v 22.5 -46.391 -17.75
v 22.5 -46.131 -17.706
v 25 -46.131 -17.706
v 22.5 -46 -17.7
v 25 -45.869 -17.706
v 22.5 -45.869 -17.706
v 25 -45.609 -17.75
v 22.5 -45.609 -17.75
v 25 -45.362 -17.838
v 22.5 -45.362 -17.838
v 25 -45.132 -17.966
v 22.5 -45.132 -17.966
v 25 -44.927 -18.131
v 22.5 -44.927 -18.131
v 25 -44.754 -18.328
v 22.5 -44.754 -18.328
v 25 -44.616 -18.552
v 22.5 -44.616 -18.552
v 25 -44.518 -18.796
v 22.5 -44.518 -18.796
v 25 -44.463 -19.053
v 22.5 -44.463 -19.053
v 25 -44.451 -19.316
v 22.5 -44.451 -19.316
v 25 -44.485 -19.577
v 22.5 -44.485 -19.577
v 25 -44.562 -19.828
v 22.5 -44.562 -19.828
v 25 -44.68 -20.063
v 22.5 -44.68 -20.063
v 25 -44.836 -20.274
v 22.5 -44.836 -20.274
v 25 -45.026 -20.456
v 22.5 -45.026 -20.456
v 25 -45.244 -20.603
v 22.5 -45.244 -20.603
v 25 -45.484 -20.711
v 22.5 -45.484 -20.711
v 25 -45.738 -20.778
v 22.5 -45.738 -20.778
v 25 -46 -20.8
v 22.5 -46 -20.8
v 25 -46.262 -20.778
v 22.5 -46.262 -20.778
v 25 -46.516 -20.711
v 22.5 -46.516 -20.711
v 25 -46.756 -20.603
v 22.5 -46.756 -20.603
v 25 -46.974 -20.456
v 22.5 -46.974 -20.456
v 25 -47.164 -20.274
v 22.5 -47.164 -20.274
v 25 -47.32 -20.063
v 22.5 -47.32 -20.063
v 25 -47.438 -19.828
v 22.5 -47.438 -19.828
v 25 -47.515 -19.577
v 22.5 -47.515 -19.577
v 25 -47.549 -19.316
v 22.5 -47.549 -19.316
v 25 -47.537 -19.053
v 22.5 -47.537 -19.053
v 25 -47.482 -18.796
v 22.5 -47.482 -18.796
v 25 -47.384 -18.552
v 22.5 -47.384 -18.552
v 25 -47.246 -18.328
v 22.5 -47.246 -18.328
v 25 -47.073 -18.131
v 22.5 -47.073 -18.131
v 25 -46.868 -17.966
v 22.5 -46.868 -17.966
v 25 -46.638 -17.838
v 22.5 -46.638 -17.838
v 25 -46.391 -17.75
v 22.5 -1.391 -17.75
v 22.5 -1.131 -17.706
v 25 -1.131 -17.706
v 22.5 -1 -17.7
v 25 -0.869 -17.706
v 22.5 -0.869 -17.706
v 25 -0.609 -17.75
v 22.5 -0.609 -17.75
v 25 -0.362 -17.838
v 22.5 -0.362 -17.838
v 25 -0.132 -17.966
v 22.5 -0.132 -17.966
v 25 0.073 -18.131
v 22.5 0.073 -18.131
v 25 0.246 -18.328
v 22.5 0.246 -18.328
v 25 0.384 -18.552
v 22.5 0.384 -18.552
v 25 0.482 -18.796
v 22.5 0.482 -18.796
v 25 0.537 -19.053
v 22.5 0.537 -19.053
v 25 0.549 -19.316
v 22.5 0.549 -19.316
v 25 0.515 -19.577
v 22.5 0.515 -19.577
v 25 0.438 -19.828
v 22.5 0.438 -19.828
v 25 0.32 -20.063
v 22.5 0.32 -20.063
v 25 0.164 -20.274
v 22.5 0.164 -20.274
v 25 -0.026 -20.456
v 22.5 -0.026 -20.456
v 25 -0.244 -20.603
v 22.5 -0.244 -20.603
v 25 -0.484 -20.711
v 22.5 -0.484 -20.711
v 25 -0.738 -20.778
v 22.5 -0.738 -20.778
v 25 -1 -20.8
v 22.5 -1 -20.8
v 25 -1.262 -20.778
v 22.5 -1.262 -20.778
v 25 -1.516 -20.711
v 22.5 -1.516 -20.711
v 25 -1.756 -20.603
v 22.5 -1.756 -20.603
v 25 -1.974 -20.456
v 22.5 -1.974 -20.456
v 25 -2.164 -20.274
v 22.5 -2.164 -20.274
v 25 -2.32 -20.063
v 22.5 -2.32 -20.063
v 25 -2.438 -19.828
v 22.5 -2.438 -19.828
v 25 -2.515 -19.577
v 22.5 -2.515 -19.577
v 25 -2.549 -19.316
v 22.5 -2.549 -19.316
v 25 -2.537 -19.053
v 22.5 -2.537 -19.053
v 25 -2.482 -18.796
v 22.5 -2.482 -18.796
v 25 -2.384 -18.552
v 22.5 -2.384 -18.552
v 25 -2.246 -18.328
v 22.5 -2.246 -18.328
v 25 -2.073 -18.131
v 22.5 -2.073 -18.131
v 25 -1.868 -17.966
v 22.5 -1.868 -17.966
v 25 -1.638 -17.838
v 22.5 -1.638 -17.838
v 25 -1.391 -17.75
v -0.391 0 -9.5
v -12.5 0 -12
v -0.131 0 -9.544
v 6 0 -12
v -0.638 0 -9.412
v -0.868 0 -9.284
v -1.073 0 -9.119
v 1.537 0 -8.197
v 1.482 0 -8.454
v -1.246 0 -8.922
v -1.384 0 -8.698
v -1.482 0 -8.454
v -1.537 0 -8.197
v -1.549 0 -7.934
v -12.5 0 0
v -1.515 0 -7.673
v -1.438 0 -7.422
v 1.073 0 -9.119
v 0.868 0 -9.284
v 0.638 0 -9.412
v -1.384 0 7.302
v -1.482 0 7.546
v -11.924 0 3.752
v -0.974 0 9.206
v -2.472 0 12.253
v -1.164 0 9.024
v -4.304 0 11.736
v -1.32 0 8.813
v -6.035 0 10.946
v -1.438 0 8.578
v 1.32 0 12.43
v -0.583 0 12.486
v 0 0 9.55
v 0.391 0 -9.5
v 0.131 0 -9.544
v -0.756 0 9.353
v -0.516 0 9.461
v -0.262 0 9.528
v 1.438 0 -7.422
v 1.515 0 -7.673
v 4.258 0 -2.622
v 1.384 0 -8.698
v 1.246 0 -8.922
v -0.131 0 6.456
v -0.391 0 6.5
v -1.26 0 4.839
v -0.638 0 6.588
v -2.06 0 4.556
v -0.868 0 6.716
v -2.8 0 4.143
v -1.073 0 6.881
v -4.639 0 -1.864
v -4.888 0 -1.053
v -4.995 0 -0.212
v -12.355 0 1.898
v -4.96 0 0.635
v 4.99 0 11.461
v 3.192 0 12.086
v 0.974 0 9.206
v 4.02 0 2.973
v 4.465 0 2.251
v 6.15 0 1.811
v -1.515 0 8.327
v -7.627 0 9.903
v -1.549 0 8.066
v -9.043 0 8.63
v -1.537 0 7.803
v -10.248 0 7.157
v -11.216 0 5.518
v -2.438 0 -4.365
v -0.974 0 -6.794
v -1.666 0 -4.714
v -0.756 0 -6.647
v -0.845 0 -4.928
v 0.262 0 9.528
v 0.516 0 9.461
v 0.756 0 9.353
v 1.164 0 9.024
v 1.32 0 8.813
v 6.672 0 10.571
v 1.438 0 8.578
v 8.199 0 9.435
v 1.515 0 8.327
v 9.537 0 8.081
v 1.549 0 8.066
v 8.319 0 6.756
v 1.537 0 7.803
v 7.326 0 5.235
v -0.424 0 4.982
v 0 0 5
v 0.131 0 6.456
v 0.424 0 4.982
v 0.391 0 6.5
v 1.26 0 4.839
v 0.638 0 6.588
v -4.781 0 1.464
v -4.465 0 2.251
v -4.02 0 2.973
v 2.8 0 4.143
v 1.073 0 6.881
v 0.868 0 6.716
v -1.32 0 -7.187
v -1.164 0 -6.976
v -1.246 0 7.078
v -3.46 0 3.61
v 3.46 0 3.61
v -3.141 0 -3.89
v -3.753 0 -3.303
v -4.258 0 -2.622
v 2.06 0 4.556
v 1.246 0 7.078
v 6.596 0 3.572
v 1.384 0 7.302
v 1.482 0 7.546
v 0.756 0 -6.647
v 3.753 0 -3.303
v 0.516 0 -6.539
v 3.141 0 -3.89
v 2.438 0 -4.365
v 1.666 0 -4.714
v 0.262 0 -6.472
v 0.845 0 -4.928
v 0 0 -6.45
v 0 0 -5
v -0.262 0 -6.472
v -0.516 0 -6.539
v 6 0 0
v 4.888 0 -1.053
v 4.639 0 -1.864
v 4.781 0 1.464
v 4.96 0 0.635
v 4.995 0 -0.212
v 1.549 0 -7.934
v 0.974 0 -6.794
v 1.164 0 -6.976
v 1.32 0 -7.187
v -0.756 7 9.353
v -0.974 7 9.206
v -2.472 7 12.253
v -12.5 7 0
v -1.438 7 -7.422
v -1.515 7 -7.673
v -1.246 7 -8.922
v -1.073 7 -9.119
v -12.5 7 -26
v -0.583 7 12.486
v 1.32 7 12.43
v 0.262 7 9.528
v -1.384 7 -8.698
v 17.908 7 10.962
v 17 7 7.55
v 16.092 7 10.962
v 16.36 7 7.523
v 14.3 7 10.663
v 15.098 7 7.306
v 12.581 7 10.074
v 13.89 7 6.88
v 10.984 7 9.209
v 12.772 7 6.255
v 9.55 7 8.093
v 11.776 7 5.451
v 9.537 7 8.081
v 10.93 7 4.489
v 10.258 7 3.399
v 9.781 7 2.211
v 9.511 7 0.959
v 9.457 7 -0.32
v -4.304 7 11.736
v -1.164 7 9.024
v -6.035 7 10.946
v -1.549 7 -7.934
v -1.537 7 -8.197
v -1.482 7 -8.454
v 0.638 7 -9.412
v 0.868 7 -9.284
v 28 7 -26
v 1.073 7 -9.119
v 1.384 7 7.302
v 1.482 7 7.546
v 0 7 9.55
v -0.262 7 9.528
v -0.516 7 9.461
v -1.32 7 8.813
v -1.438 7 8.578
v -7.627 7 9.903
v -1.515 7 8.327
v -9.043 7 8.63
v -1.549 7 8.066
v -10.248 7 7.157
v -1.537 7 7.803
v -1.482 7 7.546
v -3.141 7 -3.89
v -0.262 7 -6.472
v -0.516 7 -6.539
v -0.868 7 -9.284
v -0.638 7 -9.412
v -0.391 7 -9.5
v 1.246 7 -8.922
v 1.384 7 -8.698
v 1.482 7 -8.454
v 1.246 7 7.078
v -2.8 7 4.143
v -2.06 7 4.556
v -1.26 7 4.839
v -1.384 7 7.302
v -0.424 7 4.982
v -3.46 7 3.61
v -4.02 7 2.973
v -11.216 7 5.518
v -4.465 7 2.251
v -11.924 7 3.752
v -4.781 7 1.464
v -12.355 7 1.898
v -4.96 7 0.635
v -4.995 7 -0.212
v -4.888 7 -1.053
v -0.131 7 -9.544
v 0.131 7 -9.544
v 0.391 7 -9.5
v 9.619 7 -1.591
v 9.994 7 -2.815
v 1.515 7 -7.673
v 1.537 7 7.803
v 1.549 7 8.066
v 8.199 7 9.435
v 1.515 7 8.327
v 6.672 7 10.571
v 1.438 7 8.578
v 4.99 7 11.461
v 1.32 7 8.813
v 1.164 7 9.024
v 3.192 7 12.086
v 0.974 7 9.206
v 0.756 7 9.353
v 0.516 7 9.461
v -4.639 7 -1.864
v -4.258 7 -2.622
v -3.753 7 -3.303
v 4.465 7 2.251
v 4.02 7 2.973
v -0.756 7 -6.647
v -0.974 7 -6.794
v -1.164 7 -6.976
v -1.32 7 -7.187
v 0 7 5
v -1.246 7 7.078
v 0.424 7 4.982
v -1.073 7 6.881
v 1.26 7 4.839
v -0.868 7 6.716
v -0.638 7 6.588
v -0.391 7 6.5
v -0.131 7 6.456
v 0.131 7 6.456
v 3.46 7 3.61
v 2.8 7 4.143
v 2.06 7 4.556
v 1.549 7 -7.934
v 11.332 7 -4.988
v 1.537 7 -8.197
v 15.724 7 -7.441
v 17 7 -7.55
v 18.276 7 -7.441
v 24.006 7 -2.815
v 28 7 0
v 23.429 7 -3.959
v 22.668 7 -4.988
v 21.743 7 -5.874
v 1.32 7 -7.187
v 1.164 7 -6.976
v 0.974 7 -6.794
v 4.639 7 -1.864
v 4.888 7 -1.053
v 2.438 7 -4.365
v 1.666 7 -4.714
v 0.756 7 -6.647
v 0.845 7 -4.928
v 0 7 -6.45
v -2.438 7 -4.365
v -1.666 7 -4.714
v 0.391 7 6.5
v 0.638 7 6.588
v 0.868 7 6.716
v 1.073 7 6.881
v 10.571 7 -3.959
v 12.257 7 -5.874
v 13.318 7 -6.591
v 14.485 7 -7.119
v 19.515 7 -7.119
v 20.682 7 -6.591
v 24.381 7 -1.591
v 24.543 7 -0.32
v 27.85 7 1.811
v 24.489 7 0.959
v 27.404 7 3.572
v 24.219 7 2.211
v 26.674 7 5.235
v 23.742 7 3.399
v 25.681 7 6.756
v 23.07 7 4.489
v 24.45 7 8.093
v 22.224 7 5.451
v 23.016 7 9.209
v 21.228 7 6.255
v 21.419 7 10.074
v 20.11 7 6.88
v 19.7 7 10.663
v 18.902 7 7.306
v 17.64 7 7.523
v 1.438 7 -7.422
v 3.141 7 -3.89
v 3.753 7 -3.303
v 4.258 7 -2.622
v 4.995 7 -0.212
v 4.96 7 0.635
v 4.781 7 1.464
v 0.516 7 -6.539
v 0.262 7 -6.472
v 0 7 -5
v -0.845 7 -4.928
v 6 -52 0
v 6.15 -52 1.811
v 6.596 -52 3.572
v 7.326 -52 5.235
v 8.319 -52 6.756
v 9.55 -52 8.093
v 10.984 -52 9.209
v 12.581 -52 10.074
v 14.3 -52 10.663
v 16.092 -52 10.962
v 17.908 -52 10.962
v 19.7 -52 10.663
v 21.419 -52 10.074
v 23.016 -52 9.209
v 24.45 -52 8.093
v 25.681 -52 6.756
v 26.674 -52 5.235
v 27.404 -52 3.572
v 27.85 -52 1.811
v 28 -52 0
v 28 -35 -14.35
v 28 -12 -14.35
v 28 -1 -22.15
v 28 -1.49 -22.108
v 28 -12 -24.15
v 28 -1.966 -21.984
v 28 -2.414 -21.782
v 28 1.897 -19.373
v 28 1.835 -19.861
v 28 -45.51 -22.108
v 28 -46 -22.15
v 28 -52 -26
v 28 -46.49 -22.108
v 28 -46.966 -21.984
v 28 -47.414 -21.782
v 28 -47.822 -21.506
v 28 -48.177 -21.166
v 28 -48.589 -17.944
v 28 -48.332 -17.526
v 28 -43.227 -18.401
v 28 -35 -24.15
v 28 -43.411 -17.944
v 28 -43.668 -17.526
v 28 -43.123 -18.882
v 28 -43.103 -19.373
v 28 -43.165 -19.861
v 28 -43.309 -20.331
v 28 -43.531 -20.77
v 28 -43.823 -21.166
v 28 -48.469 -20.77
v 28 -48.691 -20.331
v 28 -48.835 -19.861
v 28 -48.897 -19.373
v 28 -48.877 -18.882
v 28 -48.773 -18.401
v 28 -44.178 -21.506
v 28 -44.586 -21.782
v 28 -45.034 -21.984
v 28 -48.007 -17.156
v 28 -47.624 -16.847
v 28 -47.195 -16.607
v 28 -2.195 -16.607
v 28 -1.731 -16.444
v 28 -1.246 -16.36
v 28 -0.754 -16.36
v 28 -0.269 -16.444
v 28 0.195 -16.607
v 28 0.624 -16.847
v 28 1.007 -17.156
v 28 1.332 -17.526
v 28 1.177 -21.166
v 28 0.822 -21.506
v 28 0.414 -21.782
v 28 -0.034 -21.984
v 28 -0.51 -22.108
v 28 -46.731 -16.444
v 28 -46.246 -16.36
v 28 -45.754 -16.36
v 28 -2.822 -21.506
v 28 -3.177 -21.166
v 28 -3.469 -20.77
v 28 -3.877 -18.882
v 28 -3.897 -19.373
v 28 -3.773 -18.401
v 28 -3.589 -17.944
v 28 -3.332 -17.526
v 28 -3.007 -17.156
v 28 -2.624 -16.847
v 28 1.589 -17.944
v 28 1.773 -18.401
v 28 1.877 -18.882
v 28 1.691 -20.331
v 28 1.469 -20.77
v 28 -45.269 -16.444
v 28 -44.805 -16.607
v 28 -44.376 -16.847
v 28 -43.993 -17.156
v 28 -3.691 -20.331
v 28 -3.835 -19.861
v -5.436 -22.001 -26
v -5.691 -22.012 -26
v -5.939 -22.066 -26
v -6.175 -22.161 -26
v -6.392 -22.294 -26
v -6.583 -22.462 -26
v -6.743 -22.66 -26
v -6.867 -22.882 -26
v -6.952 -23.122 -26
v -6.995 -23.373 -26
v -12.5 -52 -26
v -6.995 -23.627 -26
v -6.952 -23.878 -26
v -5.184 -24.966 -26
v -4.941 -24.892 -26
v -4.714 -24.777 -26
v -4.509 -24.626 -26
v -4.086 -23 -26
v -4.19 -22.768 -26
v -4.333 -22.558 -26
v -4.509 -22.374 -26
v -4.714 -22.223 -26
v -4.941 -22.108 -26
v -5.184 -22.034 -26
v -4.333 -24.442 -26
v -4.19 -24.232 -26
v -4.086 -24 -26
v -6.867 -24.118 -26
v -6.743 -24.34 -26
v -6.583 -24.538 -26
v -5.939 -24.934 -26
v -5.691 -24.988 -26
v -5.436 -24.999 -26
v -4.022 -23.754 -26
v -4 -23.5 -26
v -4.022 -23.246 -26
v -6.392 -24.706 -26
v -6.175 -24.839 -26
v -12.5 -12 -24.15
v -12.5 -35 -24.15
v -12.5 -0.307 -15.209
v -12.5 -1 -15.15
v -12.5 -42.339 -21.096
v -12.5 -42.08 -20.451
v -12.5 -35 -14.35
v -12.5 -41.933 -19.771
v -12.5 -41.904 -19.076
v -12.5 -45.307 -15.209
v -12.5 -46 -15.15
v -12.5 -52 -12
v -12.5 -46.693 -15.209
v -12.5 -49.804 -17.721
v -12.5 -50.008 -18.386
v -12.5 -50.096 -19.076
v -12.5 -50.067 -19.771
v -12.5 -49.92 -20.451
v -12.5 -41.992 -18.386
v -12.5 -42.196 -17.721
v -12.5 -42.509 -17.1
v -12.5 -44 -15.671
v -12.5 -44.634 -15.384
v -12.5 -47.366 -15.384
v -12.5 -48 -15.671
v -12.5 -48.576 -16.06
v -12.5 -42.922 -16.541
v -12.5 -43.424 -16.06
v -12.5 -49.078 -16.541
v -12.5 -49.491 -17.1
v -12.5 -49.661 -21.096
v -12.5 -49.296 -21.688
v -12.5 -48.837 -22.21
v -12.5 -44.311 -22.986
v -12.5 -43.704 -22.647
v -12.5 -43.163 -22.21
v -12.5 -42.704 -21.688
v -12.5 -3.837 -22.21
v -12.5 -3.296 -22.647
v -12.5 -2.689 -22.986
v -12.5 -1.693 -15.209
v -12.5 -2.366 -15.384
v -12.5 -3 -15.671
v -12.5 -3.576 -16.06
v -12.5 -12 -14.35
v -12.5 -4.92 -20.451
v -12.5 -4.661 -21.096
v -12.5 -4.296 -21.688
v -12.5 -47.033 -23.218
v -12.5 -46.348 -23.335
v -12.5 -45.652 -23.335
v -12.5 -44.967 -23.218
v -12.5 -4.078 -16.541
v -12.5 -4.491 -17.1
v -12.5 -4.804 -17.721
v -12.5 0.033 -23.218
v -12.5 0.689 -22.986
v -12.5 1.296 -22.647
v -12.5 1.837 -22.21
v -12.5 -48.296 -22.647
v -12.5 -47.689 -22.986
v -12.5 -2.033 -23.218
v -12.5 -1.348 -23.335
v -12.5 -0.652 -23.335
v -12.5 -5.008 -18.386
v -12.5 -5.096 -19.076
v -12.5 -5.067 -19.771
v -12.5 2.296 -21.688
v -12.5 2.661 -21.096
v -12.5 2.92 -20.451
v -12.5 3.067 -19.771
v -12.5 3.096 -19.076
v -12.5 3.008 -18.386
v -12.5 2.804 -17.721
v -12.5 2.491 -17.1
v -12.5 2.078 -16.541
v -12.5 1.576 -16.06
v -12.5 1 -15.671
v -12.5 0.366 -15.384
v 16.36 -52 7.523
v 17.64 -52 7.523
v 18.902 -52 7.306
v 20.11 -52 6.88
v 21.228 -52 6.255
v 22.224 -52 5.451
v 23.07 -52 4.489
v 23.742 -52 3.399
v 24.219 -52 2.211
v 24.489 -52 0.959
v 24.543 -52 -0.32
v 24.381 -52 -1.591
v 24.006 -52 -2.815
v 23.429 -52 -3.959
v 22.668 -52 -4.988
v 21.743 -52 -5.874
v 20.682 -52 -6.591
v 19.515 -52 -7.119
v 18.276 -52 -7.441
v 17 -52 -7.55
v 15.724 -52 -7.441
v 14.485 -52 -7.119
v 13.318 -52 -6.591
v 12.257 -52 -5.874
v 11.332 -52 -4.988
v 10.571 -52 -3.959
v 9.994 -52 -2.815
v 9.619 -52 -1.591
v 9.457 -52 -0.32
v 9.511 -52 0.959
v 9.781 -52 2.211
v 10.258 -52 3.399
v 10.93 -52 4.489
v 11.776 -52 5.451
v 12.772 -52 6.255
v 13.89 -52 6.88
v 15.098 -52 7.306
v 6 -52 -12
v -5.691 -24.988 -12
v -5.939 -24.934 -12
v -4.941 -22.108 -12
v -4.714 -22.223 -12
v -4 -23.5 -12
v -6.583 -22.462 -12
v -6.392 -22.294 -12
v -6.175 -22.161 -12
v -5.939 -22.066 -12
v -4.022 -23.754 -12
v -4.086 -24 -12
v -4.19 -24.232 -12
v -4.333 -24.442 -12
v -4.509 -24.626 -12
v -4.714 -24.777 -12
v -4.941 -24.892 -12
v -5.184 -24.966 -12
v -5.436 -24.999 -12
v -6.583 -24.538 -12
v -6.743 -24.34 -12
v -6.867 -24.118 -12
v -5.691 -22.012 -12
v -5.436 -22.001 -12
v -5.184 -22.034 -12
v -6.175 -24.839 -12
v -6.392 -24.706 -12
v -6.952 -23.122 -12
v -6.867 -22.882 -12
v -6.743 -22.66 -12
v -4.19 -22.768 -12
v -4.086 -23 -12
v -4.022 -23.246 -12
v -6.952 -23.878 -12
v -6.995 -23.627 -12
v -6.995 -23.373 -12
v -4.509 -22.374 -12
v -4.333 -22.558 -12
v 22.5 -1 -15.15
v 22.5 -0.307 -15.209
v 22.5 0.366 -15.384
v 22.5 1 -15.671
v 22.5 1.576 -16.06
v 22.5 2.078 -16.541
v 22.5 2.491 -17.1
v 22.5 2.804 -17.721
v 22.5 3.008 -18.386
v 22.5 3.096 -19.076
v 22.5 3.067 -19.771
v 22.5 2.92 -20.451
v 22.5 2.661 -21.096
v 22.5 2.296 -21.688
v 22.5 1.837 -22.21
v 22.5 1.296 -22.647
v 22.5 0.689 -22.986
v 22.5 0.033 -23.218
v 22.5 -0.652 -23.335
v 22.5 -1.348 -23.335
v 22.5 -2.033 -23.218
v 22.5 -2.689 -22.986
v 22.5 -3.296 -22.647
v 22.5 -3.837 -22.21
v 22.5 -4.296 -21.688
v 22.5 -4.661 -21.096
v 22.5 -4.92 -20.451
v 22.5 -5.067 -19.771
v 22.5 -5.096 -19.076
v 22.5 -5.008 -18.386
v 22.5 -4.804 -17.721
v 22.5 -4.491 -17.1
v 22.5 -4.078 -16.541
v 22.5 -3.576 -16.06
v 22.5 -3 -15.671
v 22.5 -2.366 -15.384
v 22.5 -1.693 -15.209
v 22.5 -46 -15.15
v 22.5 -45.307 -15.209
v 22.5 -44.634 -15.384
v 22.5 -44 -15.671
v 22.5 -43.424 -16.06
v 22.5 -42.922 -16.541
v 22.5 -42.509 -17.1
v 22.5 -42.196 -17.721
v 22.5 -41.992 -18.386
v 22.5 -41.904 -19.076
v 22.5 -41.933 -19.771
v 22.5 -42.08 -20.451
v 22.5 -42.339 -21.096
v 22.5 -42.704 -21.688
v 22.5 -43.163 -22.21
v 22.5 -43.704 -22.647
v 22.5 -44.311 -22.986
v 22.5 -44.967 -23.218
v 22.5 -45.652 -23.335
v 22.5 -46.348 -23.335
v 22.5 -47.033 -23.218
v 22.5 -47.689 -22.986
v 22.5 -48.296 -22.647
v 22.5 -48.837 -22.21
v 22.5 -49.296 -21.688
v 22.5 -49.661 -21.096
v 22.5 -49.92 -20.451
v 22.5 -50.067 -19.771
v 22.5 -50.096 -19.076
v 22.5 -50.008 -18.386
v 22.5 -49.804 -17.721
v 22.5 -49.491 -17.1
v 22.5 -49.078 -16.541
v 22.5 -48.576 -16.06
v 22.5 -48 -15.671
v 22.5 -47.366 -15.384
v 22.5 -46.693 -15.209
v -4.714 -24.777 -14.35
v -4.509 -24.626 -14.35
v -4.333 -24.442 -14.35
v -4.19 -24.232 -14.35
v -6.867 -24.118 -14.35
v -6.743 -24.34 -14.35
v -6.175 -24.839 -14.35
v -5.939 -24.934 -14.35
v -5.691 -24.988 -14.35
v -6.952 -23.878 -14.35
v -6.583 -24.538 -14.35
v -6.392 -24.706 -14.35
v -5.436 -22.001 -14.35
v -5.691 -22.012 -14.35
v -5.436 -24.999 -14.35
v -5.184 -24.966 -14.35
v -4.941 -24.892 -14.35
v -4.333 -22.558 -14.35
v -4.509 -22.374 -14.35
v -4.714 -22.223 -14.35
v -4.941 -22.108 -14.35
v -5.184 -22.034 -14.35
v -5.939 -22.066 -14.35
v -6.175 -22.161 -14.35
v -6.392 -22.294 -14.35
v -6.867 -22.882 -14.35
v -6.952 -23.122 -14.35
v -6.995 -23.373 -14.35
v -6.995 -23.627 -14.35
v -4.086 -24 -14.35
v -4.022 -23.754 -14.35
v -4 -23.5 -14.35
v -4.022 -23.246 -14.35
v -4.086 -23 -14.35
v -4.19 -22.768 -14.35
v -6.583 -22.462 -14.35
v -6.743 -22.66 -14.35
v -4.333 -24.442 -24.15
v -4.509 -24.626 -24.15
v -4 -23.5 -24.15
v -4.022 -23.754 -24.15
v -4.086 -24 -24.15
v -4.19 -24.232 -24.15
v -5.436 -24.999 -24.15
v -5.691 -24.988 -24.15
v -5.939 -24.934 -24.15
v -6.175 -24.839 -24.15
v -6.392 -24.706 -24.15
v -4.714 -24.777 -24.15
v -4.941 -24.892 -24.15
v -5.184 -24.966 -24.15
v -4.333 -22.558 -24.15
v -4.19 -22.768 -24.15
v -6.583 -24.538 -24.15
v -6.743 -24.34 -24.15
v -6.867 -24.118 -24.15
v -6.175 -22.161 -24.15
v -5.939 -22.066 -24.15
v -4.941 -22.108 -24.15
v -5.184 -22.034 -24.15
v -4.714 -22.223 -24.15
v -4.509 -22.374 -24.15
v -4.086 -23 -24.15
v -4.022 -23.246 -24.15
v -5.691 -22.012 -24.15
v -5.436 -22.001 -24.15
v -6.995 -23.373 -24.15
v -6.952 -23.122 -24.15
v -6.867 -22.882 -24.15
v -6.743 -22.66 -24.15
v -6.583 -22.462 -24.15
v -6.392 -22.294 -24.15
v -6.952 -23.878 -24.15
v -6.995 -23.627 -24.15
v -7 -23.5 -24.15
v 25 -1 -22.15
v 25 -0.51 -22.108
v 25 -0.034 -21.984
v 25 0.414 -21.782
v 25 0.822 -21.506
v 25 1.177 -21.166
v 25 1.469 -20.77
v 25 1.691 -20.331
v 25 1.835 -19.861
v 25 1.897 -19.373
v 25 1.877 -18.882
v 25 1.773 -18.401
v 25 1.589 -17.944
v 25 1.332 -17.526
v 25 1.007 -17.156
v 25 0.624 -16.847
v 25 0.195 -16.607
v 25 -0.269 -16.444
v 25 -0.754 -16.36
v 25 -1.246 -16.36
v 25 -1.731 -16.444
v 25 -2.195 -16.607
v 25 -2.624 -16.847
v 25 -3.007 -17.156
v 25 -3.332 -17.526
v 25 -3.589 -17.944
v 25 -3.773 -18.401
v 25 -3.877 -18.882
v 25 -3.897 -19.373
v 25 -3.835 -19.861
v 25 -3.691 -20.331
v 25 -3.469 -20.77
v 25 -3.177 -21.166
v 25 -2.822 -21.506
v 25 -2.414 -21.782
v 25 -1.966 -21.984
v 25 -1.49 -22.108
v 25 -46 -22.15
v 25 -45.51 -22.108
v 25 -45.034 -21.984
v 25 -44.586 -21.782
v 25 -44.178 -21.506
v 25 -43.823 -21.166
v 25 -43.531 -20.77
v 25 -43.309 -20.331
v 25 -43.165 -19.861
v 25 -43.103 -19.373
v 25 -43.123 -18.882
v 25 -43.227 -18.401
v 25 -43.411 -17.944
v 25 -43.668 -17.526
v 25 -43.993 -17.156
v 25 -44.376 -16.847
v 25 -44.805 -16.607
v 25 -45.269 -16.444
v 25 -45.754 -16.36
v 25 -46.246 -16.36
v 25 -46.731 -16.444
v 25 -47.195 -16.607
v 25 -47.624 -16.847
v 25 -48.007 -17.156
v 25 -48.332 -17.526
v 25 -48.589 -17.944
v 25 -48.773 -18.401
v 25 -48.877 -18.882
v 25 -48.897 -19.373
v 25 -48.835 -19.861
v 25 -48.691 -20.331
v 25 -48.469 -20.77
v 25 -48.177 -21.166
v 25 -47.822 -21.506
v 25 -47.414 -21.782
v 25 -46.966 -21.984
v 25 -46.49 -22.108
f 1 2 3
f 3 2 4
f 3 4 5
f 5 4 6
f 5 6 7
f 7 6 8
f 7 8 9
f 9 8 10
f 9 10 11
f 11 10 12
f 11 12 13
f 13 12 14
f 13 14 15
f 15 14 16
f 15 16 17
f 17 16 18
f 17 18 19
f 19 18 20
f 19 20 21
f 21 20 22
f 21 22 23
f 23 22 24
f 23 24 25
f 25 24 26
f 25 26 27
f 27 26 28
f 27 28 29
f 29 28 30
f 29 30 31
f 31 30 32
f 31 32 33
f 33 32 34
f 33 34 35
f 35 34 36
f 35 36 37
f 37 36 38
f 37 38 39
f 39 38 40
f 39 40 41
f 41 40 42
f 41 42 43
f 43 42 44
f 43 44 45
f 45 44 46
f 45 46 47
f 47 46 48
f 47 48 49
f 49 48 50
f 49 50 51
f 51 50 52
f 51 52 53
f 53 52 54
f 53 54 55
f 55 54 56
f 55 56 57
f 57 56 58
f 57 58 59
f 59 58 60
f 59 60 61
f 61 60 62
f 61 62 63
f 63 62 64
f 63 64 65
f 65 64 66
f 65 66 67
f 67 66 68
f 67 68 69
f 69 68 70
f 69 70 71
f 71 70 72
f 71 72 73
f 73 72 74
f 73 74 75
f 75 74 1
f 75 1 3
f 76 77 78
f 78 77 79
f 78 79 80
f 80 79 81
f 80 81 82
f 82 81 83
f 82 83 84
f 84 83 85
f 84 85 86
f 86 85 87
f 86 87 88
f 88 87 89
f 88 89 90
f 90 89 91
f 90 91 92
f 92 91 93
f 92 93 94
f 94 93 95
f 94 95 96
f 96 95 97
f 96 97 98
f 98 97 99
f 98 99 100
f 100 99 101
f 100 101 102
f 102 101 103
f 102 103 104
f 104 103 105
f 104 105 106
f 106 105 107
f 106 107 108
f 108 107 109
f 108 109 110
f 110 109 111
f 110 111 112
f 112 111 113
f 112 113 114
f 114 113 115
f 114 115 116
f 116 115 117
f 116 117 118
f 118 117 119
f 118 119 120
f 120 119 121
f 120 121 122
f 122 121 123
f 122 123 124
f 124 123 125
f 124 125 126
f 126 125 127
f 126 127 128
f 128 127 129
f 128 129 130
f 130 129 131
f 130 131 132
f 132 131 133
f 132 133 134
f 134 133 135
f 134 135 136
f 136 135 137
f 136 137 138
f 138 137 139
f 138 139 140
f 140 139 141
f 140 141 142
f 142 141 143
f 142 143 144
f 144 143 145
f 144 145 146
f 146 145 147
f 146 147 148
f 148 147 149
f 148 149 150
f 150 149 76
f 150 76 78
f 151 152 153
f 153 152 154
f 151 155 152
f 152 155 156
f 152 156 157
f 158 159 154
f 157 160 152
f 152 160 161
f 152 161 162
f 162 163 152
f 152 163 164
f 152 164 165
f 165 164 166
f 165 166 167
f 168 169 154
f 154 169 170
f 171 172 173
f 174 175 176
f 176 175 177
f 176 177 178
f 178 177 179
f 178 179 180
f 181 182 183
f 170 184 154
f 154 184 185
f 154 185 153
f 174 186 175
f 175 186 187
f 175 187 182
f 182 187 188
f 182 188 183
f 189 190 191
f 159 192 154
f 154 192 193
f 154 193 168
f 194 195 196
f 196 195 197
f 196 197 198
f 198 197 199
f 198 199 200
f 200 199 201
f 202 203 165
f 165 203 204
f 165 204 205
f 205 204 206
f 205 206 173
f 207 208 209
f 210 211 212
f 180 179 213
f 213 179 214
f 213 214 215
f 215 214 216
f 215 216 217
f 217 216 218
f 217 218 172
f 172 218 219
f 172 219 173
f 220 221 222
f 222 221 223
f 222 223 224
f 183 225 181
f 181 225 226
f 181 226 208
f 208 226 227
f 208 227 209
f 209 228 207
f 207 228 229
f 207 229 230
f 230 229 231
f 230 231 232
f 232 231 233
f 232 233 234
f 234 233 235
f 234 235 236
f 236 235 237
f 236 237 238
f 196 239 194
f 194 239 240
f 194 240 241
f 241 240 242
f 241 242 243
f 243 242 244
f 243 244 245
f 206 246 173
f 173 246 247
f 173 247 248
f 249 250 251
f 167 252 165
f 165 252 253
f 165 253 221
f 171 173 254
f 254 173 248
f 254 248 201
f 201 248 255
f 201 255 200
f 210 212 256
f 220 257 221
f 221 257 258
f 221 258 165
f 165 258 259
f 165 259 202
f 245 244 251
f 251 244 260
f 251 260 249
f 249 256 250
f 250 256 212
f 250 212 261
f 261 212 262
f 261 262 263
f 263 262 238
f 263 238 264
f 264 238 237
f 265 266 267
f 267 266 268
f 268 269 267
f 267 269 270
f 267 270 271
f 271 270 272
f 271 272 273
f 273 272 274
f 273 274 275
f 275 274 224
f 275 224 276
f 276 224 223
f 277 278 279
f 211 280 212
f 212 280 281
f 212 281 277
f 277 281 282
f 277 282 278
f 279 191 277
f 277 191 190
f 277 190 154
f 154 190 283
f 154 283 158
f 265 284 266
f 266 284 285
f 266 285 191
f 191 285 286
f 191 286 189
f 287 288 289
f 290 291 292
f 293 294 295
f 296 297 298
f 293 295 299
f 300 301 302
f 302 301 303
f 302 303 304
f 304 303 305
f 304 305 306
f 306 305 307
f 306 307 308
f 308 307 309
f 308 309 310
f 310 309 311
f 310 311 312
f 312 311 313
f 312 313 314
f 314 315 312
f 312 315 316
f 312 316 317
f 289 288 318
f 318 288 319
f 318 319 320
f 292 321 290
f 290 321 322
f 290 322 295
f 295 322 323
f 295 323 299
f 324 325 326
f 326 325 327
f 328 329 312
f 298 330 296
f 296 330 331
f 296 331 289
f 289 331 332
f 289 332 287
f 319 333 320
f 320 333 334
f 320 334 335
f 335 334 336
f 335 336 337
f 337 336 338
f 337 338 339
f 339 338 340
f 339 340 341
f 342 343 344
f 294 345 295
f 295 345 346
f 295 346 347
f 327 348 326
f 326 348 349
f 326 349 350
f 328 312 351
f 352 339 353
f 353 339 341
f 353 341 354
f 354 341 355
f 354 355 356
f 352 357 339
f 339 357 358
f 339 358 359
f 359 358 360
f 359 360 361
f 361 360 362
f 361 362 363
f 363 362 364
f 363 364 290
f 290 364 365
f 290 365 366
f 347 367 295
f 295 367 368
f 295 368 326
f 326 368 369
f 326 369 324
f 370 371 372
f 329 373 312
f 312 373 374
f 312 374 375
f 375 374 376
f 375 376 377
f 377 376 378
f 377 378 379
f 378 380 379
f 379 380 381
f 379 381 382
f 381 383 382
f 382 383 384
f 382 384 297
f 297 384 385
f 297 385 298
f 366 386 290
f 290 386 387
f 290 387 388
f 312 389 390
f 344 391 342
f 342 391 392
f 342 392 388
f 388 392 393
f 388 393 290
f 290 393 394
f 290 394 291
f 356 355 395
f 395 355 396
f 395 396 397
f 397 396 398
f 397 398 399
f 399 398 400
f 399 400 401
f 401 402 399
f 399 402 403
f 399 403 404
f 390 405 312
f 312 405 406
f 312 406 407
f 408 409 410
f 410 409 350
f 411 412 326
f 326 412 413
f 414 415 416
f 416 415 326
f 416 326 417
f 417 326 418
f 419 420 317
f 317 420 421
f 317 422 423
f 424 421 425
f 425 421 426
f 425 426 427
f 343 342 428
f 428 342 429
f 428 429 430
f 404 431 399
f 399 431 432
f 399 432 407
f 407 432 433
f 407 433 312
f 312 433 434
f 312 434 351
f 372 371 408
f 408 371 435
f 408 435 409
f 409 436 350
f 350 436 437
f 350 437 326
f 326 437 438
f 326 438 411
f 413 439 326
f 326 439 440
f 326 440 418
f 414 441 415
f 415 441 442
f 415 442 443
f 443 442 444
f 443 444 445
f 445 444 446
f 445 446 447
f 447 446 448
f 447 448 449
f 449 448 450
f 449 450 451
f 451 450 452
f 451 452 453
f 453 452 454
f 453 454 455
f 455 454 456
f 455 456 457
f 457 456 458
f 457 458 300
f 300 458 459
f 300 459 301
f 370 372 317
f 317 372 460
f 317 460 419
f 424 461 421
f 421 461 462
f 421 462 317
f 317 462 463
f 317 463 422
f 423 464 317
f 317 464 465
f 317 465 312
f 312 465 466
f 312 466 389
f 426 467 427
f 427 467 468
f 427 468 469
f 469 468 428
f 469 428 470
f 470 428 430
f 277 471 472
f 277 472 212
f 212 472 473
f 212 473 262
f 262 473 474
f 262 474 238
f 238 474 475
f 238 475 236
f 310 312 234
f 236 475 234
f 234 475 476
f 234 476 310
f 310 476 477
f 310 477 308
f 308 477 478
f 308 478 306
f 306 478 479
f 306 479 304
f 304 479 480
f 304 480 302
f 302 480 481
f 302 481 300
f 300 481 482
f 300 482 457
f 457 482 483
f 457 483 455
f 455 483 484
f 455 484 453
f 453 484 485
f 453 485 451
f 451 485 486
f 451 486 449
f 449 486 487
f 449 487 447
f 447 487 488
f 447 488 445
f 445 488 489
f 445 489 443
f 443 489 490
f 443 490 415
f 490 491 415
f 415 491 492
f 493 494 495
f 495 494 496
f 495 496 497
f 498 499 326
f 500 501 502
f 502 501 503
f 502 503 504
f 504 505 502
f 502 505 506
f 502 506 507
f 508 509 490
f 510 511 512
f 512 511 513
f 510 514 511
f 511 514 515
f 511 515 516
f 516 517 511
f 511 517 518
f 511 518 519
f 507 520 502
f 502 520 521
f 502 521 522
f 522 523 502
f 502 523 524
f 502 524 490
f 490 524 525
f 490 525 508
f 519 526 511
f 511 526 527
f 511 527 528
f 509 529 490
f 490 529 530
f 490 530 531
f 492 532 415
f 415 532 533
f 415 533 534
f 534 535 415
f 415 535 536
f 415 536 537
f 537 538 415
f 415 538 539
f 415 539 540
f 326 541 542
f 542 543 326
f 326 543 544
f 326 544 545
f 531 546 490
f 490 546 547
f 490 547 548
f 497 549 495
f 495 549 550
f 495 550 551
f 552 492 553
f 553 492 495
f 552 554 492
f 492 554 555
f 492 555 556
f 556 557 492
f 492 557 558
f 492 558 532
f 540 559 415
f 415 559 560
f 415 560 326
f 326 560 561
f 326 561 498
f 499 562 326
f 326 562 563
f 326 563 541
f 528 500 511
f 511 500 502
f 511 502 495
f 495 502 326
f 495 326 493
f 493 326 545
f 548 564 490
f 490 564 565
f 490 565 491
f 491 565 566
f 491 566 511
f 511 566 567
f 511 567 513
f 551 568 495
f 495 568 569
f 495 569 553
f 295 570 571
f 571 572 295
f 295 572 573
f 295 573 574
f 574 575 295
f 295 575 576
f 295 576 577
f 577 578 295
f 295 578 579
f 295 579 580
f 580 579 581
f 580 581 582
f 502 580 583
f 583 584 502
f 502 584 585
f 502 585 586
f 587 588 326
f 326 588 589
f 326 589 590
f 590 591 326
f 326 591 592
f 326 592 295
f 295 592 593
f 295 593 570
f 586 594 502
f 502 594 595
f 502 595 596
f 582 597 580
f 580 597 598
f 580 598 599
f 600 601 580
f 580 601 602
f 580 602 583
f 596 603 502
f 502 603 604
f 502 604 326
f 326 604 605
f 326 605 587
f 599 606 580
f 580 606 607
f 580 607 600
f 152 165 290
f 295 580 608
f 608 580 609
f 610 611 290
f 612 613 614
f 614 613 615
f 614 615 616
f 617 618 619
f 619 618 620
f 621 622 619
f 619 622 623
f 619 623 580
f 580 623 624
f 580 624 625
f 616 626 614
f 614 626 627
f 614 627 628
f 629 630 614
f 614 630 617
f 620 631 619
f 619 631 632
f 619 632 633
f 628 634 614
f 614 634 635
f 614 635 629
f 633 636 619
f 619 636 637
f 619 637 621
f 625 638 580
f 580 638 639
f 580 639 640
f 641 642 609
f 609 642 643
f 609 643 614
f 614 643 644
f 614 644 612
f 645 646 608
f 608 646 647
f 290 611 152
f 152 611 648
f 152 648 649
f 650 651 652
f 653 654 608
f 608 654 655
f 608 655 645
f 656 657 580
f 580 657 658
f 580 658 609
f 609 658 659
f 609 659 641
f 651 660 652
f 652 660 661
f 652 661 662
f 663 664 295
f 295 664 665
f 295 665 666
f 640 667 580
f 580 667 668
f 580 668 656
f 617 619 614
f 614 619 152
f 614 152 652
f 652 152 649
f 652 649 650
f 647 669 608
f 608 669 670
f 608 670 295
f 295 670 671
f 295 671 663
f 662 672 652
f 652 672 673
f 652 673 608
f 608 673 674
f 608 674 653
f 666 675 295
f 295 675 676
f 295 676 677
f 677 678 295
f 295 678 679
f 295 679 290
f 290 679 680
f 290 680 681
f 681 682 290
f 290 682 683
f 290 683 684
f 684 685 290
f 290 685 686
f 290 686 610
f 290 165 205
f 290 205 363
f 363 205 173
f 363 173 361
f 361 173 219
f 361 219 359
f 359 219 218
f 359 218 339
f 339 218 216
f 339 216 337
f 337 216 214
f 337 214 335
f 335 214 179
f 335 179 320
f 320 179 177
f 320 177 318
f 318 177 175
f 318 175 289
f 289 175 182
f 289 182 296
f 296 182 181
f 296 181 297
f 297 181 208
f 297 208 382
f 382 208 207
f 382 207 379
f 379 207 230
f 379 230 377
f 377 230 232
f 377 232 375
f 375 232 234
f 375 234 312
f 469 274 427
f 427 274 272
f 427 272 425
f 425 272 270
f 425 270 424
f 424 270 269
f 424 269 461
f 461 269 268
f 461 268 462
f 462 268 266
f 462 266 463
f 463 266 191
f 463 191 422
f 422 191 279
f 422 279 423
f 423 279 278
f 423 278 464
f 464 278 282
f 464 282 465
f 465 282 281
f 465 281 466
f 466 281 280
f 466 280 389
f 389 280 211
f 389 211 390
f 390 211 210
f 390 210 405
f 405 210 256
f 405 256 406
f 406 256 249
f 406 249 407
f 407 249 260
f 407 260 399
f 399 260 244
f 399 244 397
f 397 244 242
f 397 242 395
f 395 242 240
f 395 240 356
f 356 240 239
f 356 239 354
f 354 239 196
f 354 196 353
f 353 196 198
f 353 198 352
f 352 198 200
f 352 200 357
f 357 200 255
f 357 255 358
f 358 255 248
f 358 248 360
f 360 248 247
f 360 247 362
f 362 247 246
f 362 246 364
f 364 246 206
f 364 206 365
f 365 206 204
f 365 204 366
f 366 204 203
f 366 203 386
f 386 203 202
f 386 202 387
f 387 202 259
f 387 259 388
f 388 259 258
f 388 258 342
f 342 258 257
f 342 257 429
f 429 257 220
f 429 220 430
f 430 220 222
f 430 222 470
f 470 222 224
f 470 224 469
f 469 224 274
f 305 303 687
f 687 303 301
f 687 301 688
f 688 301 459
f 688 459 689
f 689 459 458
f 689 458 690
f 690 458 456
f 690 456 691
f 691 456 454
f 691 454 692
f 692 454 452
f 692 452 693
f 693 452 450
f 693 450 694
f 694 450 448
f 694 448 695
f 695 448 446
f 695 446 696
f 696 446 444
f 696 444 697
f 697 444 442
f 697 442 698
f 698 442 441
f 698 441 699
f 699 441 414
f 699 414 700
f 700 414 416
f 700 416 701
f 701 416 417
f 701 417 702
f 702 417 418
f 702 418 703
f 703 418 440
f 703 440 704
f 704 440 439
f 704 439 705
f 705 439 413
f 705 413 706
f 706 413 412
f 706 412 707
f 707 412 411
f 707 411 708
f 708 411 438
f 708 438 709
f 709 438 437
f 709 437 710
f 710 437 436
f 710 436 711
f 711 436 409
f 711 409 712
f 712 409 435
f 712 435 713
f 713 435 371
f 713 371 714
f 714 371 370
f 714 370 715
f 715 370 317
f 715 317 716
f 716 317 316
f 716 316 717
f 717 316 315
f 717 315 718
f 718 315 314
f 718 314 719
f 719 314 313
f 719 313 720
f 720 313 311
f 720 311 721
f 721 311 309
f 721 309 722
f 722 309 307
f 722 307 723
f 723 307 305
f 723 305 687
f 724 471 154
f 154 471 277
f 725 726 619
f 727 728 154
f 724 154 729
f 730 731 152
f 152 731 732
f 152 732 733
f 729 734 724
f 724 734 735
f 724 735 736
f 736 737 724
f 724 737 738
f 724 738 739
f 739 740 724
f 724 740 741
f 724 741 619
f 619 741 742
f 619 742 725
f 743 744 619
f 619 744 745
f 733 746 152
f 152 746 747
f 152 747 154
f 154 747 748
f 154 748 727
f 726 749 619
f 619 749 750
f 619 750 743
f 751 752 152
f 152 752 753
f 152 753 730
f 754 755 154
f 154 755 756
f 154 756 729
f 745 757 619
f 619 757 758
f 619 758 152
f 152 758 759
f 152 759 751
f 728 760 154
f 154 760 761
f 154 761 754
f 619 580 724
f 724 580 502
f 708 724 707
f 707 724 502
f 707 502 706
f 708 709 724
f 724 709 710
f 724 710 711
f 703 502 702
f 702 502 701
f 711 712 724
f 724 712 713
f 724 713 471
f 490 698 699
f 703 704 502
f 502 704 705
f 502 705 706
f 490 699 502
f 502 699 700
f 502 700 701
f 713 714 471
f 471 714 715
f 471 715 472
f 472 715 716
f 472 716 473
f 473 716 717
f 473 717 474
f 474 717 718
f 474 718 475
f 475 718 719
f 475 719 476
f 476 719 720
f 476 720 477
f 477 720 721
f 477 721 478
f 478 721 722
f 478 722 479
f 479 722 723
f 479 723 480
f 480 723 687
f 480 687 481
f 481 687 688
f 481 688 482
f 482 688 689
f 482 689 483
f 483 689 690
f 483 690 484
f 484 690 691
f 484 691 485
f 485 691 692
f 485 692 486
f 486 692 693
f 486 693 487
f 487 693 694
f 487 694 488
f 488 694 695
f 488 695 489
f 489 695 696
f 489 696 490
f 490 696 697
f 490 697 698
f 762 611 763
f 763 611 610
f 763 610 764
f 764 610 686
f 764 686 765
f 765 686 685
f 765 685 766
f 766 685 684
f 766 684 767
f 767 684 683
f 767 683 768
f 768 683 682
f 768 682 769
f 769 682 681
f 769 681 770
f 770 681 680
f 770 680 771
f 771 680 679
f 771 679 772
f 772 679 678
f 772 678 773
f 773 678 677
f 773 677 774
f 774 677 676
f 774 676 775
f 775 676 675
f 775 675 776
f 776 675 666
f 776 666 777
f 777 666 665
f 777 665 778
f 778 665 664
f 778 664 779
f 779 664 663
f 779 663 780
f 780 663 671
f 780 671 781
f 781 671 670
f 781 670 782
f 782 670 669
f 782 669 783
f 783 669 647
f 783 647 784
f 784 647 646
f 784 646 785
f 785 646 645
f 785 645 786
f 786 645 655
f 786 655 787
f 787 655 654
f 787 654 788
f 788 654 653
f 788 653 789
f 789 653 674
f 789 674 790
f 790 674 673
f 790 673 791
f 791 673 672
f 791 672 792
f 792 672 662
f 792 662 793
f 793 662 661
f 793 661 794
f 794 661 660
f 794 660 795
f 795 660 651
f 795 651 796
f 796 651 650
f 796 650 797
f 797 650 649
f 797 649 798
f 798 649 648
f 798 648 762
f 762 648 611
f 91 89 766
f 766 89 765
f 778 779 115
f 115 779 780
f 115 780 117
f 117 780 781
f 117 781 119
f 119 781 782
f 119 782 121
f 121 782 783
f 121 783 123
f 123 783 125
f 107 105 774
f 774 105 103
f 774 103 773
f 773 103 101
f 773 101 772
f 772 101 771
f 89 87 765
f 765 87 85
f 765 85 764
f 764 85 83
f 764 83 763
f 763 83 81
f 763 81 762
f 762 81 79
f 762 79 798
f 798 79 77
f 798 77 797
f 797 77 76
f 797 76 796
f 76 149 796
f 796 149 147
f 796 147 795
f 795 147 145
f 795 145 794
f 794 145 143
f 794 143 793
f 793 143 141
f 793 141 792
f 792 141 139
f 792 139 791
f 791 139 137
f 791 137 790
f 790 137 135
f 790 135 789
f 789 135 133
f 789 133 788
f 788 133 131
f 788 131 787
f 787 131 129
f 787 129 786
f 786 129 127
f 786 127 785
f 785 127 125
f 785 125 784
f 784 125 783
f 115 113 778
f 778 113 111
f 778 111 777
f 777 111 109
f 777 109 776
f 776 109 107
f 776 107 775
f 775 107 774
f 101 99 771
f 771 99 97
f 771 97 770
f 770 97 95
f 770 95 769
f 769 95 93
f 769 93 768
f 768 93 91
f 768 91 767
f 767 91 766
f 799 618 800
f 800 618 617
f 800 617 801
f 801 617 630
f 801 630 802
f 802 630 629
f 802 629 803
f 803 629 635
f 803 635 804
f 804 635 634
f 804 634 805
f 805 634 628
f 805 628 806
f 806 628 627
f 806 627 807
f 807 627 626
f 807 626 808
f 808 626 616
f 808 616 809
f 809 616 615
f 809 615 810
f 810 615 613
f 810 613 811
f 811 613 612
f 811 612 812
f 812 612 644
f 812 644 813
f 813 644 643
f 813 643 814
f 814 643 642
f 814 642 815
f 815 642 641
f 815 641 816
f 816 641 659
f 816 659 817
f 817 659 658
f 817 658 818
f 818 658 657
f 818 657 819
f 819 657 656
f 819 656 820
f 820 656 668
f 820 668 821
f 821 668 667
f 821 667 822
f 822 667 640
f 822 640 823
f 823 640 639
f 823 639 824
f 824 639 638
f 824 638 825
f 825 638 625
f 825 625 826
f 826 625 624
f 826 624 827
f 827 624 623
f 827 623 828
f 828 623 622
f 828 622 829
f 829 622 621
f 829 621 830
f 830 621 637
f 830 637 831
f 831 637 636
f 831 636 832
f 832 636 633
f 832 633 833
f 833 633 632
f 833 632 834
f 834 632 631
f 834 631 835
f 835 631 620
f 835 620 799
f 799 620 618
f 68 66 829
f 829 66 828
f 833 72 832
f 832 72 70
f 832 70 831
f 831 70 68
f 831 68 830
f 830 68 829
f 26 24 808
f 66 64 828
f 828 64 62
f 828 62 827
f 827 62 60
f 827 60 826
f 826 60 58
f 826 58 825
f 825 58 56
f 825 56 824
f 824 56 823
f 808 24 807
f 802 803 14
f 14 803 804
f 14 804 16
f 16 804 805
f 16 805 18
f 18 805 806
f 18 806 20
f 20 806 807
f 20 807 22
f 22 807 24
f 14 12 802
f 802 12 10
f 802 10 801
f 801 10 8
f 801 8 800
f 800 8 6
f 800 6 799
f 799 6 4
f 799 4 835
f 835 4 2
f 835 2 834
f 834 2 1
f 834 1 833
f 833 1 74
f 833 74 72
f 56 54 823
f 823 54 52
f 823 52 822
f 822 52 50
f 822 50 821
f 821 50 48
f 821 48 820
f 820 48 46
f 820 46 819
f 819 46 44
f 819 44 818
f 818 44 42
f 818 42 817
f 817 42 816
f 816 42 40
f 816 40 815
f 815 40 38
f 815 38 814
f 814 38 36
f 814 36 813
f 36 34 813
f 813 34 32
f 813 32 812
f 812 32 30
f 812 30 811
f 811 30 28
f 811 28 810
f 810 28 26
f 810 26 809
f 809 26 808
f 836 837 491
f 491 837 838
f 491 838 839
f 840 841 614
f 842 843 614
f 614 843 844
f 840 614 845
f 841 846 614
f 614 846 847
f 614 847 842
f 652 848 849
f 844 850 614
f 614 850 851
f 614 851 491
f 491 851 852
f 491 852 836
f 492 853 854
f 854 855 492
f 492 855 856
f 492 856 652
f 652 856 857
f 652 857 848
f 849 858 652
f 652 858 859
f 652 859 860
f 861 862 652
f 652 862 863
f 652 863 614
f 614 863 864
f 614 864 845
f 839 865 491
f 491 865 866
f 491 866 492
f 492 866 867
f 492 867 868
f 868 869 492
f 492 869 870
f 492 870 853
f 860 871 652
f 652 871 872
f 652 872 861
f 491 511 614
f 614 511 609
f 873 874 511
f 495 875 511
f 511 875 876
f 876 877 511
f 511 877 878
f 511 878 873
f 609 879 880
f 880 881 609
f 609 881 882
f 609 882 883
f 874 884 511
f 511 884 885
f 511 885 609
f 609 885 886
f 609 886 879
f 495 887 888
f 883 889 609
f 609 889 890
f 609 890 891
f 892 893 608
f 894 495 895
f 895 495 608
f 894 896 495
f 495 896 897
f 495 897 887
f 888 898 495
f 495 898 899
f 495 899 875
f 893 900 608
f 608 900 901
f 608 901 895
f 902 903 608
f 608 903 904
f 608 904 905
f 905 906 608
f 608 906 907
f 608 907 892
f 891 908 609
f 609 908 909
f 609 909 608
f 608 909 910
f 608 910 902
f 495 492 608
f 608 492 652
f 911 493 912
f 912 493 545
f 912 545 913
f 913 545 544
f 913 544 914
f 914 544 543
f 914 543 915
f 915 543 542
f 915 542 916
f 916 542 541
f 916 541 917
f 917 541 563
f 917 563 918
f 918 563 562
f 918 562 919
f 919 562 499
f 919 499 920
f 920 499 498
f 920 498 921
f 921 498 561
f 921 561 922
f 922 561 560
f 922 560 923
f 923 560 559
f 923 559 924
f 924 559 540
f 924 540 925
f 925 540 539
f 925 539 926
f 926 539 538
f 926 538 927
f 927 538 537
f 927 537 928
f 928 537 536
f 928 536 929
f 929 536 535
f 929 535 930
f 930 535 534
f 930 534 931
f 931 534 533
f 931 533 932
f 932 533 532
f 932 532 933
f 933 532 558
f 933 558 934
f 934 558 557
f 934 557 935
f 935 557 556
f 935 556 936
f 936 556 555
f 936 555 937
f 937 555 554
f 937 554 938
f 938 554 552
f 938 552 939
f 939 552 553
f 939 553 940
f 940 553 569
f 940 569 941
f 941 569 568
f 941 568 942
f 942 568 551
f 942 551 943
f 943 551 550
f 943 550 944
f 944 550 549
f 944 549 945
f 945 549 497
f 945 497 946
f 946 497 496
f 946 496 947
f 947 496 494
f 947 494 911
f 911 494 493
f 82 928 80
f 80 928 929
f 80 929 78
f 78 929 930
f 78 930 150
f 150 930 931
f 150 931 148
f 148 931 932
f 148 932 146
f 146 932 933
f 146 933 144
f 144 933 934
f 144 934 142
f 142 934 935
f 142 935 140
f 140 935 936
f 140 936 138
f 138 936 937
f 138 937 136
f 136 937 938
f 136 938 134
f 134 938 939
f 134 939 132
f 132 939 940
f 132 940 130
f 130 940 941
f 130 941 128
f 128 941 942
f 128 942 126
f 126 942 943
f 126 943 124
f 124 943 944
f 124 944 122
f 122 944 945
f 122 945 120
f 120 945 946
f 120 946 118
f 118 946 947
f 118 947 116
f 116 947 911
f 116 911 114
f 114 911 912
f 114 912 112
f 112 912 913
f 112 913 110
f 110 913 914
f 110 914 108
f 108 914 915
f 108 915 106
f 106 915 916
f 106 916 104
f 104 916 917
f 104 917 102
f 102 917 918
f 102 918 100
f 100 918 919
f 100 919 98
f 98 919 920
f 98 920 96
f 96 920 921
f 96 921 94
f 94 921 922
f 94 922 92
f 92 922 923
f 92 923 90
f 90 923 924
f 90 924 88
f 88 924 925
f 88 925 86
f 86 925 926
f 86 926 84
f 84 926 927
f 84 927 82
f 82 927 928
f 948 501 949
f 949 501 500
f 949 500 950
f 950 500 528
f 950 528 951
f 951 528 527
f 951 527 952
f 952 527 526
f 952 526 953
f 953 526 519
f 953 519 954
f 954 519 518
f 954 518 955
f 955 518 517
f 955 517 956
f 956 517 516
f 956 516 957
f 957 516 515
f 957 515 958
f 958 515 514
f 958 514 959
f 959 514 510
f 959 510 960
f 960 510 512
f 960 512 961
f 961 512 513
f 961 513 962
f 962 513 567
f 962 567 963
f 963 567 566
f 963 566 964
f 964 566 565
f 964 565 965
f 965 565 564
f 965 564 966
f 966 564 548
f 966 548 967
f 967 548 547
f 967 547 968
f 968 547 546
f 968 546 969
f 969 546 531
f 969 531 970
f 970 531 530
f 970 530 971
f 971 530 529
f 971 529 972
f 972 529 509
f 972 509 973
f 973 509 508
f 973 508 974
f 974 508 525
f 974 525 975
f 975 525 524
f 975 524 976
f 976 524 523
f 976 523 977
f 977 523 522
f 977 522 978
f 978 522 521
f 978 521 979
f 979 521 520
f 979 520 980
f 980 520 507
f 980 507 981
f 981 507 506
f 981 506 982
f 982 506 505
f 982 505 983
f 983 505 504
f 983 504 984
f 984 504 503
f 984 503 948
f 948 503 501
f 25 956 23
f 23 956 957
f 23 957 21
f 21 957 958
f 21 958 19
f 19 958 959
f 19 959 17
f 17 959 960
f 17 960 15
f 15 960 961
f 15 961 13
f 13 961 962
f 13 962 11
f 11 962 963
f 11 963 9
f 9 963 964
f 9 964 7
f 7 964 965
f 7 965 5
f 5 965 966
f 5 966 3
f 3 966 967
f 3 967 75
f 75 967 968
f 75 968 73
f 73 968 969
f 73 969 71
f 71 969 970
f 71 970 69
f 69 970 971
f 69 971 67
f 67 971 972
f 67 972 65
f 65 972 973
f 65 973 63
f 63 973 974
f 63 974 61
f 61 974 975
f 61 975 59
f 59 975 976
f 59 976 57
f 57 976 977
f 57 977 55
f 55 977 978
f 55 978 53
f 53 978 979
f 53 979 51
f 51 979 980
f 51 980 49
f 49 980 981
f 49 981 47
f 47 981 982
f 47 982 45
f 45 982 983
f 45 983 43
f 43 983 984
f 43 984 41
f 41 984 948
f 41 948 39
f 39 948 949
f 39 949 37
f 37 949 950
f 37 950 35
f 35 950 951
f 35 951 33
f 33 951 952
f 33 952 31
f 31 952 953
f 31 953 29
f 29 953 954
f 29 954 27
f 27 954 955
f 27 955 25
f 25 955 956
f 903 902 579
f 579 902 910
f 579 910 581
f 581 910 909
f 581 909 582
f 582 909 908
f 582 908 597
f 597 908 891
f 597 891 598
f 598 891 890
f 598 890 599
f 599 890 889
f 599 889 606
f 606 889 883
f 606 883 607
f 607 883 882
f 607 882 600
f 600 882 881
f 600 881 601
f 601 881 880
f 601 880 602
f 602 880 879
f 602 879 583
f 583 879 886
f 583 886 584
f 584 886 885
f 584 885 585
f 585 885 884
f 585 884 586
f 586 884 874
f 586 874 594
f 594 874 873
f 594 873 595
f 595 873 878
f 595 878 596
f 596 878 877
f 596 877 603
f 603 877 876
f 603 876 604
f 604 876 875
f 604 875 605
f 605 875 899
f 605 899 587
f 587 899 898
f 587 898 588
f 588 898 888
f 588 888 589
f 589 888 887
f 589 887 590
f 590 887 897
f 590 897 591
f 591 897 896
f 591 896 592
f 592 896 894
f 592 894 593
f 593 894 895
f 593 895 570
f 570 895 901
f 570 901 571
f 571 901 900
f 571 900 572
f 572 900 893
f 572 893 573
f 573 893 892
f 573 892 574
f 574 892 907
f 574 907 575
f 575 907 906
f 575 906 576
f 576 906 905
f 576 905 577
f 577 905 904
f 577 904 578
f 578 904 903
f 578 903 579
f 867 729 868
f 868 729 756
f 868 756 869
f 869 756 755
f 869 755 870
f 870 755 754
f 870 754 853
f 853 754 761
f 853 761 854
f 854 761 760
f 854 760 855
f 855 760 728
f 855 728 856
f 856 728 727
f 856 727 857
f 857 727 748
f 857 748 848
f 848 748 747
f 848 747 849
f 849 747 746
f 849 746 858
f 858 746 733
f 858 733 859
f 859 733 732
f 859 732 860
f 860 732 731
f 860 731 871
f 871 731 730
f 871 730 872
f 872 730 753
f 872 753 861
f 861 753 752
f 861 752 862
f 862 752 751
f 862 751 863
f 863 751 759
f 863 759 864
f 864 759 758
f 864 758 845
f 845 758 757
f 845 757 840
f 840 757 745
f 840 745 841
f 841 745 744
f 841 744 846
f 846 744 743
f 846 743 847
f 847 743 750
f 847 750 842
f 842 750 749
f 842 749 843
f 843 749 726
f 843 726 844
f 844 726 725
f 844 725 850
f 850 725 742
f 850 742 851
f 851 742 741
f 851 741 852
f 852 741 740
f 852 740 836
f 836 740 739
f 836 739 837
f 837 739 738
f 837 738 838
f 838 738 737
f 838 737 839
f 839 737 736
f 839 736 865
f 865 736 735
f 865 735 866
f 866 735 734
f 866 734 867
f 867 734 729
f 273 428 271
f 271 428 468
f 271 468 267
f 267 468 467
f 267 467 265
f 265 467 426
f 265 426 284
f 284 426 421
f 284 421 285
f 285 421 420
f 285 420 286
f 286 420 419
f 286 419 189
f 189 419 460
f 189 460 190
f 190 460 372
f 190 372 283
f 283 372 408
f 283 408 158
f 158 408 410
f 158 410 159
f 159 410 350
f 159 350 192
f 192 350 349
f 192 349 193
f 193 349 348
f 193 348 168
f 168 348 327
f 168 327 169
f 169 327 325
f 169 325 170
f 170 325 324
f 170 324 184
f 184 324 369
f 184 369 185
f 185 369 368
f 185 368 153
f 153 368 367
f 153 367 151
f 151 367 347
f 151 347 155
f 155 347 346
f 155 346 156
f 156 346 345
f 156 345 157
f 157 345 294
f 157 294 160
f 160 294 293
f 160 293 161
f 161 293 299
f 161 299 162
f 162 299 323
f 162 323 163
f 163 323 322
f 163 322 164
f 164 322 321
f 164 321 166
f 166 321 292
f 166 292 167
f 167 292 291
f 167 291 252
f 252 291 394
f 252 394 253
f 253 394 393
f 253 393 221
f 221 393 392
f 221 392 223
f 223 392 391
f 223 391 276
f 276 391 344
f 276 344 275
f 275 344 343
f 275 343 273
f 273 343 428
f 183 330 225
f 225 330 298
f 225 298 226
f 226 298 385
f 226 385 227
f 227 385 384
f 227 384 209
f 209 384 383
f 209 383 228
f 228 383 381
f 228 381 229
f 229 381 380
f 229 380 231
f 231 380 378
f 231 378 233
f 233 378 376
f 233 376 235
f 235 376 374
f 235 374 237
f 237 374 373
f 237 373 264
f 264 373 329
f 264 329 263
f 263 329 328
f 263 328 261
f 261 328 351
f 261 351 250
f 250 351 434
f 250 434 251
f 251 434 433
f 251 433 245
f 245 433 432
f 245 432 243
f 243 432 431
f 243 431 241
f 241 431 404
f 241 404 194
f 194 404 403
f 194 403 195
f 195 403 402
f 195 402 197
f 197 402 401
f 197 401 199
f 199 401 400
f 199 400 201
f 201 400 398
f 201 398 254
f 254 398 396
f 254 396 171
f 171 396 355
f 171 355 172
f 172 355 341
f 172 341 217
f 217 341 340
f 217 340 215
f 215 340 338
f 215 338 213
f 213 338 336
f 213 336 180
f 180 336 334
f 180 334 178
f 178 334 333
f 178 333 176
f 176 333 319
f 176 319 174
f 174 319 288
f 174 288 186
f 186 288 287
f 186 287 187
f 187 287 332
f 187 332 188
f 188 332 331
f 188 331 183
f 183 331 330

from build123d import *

# Parameters (mm, degrees)
CROQUIS1_R              = 5
CROQUIS1_R_2            = 7.55
SALIENTE_EXTRUIR1_DEPTH = 7
CROQUIS4_R              = 7.55
SALIENTE_EXTRUIR4_DEPTH = 52
CROQUIS5_R              = 4.1
CORTAR_EXTRUIR1_DEPTH   = 35
CROQUIS6_W              = 9.8
CROQUIS6_H              = 23
CORTAR_EXTRUIR2_DEPTH   = 41.5
CROQUIS7_R              = 1.4
CORTAR_EXTRUIR3_DEPTH   = 41.5
CROQUIS8_R              = 2.9
CROQUIS8_R_2            = 1.4
CORTAR_EXTRUIR4_DEPTH   = 3
CROQUIS10_R             = 1.5
CORTAR_EXTRUIR5_DEPTH   = 15
CROQUIS11_R             = 1.55
CORTAR_EXTRUIR6_DEPTH   = 60


with BuildPart() as part:
    # Croquis1 → Saliente-Extruir1 (new body)
    with BuildSketch(Plane(origin=(0, 0, 0), x_dir=(1, 0, 0), z_dir=(0, 1, 0))):
        with BuildLine():
            Line((28, 0), (28, 26))
            Line((28, 26), (-12.5, 26))
            Line((-12.5, 26), (-12.5, 0))
            ThreePointArc((-12.5, 0), (-4.303512587, -11.735833137), (9.536764706, -8.0808489))
            ThreePointArc((9.536764706, -8.0808489), (21.410465495, -10.077092543), (28, 0))
        make_face()
        Circle(CROQUIS1_R, mode=Mode.SUBTRACT)
        with Locations((17, 0)):
            Circle(CROQUIS1_R_2, mode=Mode.SUBTRACT)
    extrude(amount=SALIENTE_EXTRUIR1_DEPTH)

    # Croquis4 → Saliente-Extruir4 (add)
    with BuildSketch(Plane.XZ):
        with BuildLine():
            Line((-12.5, -12), (-12.5, -26))
            Line((-12.5, -26), (28, -26))
            Line((28, -26), (28, 0))
            ThreePointArc((28, 0), (21.410465495, 10.077092543), (9.536764706, 8.0808489))
            ThreePointArc((9.536764706, 8.0808489), (6.922907457, 4.410465495), (6, 0))
            Line((6, 0), (6, -12))
            Line((6, -12), (-12.5, -12))
        make_face()
        with Locations((17, 0)):
            Circle(CROQUIS4_R, mode=Mode.SUBTRACT)
    extrude(amount=SALIENTE_EXTRUIR4_DEPTH)

    # Croquis5 → Cortar-Extruir1 (cut)
    with BuildSketch(Plane.ZY.offset(12.5)):
        with Locations((-19.25, -1)):
            Circle(CROQUIS5_R)
        with Locations((-19.25, -46)):
            Circle(CROQUIS5_R)
    extrude(amount=-CORTAR_EXTRUIR1_DEPTH, mode=Mode.SUBTRACT)

    # Croquis6 → Cortar-Extruir2 (cut, through all)
    with BuildSketch(Plane.ZY.offset(12.5)):
        with Locations((-19.25, -23.5)):
            Rectangle(CROQUIS6_W, CROQUIS6_H)
    extrude(amount=-CORTAR_EXTRUIR2_DEPTH, mode=Mode.SUBTRACT)

    # Croquis7 → Cortar-Extruir3 (cut, through all)
    with BuildSketch(Plane(origin=(28, 0, 0), x_dir=(0, 0, -1), z_dir=(1, 0, 0))):
        with Locations((19.25, -1)):
            Circle(CROQUIS7_R)
        with Locations((19.25, -46)):
            Circle(CROQUIS7_R)
    extrude(amount=-CORTAR_EXTRUIR3_DEPTH, mode=Mode.SUBTRACT)

    # Croquis8 → Cortar-Extruir4 (cut)
    with BuildSketch(Plane(origin=(28, 0, 0), x_dir=(0, 0, -1), z_dir=(1, 0, 0))):
        with Locations((19.25, -1)):
            Circle(CROQUIS8_R)
        with Locations((19.25, -1)):
            Circle(CROQUIS8_R_2, mode=Mode.SUBTRACT)
        with Locations((19.25, -46)):
            Circle(CROQUIS8_R)
        with Locations((19.25, -46)):
            Circle(CROQUIS8_R_2, mode=Mode.SUBTRACT)
    extrude(amount=-CORTAR_EXTRUIR4_DEPTH, mode=Mode.SUBTRACT)

    # Croquis10 → Cortar-Extruir5 (cut, through all)
    with BuildSketch(Plane.XY.offset(-12)):
        with Locations((-5.5, -23.5)):
            Circle(CROQUIS10_R)
    extrude(amount=-CORTAR_EXTRUIR5_DEPTH, mode=Mode.SUBTRACT)

    # Croquis11 → Cortar-Extruir6 (cut, through all)
    with BuildSketch(Plane(origin=(0, 7, 0), x_dir=(1, 0, 0), z_dir=(0, 1, 0))):
        with Locations((0, 8)):
            Circle(CROQUIS11_R)
        with Locations((0, -8)):
            Circle(CROQUIS11_R)
    extrude(amount=-CORTAR_EXTRUIR6_DEPTH, mode=Mode.SUBTRACT)


solid = part.part
